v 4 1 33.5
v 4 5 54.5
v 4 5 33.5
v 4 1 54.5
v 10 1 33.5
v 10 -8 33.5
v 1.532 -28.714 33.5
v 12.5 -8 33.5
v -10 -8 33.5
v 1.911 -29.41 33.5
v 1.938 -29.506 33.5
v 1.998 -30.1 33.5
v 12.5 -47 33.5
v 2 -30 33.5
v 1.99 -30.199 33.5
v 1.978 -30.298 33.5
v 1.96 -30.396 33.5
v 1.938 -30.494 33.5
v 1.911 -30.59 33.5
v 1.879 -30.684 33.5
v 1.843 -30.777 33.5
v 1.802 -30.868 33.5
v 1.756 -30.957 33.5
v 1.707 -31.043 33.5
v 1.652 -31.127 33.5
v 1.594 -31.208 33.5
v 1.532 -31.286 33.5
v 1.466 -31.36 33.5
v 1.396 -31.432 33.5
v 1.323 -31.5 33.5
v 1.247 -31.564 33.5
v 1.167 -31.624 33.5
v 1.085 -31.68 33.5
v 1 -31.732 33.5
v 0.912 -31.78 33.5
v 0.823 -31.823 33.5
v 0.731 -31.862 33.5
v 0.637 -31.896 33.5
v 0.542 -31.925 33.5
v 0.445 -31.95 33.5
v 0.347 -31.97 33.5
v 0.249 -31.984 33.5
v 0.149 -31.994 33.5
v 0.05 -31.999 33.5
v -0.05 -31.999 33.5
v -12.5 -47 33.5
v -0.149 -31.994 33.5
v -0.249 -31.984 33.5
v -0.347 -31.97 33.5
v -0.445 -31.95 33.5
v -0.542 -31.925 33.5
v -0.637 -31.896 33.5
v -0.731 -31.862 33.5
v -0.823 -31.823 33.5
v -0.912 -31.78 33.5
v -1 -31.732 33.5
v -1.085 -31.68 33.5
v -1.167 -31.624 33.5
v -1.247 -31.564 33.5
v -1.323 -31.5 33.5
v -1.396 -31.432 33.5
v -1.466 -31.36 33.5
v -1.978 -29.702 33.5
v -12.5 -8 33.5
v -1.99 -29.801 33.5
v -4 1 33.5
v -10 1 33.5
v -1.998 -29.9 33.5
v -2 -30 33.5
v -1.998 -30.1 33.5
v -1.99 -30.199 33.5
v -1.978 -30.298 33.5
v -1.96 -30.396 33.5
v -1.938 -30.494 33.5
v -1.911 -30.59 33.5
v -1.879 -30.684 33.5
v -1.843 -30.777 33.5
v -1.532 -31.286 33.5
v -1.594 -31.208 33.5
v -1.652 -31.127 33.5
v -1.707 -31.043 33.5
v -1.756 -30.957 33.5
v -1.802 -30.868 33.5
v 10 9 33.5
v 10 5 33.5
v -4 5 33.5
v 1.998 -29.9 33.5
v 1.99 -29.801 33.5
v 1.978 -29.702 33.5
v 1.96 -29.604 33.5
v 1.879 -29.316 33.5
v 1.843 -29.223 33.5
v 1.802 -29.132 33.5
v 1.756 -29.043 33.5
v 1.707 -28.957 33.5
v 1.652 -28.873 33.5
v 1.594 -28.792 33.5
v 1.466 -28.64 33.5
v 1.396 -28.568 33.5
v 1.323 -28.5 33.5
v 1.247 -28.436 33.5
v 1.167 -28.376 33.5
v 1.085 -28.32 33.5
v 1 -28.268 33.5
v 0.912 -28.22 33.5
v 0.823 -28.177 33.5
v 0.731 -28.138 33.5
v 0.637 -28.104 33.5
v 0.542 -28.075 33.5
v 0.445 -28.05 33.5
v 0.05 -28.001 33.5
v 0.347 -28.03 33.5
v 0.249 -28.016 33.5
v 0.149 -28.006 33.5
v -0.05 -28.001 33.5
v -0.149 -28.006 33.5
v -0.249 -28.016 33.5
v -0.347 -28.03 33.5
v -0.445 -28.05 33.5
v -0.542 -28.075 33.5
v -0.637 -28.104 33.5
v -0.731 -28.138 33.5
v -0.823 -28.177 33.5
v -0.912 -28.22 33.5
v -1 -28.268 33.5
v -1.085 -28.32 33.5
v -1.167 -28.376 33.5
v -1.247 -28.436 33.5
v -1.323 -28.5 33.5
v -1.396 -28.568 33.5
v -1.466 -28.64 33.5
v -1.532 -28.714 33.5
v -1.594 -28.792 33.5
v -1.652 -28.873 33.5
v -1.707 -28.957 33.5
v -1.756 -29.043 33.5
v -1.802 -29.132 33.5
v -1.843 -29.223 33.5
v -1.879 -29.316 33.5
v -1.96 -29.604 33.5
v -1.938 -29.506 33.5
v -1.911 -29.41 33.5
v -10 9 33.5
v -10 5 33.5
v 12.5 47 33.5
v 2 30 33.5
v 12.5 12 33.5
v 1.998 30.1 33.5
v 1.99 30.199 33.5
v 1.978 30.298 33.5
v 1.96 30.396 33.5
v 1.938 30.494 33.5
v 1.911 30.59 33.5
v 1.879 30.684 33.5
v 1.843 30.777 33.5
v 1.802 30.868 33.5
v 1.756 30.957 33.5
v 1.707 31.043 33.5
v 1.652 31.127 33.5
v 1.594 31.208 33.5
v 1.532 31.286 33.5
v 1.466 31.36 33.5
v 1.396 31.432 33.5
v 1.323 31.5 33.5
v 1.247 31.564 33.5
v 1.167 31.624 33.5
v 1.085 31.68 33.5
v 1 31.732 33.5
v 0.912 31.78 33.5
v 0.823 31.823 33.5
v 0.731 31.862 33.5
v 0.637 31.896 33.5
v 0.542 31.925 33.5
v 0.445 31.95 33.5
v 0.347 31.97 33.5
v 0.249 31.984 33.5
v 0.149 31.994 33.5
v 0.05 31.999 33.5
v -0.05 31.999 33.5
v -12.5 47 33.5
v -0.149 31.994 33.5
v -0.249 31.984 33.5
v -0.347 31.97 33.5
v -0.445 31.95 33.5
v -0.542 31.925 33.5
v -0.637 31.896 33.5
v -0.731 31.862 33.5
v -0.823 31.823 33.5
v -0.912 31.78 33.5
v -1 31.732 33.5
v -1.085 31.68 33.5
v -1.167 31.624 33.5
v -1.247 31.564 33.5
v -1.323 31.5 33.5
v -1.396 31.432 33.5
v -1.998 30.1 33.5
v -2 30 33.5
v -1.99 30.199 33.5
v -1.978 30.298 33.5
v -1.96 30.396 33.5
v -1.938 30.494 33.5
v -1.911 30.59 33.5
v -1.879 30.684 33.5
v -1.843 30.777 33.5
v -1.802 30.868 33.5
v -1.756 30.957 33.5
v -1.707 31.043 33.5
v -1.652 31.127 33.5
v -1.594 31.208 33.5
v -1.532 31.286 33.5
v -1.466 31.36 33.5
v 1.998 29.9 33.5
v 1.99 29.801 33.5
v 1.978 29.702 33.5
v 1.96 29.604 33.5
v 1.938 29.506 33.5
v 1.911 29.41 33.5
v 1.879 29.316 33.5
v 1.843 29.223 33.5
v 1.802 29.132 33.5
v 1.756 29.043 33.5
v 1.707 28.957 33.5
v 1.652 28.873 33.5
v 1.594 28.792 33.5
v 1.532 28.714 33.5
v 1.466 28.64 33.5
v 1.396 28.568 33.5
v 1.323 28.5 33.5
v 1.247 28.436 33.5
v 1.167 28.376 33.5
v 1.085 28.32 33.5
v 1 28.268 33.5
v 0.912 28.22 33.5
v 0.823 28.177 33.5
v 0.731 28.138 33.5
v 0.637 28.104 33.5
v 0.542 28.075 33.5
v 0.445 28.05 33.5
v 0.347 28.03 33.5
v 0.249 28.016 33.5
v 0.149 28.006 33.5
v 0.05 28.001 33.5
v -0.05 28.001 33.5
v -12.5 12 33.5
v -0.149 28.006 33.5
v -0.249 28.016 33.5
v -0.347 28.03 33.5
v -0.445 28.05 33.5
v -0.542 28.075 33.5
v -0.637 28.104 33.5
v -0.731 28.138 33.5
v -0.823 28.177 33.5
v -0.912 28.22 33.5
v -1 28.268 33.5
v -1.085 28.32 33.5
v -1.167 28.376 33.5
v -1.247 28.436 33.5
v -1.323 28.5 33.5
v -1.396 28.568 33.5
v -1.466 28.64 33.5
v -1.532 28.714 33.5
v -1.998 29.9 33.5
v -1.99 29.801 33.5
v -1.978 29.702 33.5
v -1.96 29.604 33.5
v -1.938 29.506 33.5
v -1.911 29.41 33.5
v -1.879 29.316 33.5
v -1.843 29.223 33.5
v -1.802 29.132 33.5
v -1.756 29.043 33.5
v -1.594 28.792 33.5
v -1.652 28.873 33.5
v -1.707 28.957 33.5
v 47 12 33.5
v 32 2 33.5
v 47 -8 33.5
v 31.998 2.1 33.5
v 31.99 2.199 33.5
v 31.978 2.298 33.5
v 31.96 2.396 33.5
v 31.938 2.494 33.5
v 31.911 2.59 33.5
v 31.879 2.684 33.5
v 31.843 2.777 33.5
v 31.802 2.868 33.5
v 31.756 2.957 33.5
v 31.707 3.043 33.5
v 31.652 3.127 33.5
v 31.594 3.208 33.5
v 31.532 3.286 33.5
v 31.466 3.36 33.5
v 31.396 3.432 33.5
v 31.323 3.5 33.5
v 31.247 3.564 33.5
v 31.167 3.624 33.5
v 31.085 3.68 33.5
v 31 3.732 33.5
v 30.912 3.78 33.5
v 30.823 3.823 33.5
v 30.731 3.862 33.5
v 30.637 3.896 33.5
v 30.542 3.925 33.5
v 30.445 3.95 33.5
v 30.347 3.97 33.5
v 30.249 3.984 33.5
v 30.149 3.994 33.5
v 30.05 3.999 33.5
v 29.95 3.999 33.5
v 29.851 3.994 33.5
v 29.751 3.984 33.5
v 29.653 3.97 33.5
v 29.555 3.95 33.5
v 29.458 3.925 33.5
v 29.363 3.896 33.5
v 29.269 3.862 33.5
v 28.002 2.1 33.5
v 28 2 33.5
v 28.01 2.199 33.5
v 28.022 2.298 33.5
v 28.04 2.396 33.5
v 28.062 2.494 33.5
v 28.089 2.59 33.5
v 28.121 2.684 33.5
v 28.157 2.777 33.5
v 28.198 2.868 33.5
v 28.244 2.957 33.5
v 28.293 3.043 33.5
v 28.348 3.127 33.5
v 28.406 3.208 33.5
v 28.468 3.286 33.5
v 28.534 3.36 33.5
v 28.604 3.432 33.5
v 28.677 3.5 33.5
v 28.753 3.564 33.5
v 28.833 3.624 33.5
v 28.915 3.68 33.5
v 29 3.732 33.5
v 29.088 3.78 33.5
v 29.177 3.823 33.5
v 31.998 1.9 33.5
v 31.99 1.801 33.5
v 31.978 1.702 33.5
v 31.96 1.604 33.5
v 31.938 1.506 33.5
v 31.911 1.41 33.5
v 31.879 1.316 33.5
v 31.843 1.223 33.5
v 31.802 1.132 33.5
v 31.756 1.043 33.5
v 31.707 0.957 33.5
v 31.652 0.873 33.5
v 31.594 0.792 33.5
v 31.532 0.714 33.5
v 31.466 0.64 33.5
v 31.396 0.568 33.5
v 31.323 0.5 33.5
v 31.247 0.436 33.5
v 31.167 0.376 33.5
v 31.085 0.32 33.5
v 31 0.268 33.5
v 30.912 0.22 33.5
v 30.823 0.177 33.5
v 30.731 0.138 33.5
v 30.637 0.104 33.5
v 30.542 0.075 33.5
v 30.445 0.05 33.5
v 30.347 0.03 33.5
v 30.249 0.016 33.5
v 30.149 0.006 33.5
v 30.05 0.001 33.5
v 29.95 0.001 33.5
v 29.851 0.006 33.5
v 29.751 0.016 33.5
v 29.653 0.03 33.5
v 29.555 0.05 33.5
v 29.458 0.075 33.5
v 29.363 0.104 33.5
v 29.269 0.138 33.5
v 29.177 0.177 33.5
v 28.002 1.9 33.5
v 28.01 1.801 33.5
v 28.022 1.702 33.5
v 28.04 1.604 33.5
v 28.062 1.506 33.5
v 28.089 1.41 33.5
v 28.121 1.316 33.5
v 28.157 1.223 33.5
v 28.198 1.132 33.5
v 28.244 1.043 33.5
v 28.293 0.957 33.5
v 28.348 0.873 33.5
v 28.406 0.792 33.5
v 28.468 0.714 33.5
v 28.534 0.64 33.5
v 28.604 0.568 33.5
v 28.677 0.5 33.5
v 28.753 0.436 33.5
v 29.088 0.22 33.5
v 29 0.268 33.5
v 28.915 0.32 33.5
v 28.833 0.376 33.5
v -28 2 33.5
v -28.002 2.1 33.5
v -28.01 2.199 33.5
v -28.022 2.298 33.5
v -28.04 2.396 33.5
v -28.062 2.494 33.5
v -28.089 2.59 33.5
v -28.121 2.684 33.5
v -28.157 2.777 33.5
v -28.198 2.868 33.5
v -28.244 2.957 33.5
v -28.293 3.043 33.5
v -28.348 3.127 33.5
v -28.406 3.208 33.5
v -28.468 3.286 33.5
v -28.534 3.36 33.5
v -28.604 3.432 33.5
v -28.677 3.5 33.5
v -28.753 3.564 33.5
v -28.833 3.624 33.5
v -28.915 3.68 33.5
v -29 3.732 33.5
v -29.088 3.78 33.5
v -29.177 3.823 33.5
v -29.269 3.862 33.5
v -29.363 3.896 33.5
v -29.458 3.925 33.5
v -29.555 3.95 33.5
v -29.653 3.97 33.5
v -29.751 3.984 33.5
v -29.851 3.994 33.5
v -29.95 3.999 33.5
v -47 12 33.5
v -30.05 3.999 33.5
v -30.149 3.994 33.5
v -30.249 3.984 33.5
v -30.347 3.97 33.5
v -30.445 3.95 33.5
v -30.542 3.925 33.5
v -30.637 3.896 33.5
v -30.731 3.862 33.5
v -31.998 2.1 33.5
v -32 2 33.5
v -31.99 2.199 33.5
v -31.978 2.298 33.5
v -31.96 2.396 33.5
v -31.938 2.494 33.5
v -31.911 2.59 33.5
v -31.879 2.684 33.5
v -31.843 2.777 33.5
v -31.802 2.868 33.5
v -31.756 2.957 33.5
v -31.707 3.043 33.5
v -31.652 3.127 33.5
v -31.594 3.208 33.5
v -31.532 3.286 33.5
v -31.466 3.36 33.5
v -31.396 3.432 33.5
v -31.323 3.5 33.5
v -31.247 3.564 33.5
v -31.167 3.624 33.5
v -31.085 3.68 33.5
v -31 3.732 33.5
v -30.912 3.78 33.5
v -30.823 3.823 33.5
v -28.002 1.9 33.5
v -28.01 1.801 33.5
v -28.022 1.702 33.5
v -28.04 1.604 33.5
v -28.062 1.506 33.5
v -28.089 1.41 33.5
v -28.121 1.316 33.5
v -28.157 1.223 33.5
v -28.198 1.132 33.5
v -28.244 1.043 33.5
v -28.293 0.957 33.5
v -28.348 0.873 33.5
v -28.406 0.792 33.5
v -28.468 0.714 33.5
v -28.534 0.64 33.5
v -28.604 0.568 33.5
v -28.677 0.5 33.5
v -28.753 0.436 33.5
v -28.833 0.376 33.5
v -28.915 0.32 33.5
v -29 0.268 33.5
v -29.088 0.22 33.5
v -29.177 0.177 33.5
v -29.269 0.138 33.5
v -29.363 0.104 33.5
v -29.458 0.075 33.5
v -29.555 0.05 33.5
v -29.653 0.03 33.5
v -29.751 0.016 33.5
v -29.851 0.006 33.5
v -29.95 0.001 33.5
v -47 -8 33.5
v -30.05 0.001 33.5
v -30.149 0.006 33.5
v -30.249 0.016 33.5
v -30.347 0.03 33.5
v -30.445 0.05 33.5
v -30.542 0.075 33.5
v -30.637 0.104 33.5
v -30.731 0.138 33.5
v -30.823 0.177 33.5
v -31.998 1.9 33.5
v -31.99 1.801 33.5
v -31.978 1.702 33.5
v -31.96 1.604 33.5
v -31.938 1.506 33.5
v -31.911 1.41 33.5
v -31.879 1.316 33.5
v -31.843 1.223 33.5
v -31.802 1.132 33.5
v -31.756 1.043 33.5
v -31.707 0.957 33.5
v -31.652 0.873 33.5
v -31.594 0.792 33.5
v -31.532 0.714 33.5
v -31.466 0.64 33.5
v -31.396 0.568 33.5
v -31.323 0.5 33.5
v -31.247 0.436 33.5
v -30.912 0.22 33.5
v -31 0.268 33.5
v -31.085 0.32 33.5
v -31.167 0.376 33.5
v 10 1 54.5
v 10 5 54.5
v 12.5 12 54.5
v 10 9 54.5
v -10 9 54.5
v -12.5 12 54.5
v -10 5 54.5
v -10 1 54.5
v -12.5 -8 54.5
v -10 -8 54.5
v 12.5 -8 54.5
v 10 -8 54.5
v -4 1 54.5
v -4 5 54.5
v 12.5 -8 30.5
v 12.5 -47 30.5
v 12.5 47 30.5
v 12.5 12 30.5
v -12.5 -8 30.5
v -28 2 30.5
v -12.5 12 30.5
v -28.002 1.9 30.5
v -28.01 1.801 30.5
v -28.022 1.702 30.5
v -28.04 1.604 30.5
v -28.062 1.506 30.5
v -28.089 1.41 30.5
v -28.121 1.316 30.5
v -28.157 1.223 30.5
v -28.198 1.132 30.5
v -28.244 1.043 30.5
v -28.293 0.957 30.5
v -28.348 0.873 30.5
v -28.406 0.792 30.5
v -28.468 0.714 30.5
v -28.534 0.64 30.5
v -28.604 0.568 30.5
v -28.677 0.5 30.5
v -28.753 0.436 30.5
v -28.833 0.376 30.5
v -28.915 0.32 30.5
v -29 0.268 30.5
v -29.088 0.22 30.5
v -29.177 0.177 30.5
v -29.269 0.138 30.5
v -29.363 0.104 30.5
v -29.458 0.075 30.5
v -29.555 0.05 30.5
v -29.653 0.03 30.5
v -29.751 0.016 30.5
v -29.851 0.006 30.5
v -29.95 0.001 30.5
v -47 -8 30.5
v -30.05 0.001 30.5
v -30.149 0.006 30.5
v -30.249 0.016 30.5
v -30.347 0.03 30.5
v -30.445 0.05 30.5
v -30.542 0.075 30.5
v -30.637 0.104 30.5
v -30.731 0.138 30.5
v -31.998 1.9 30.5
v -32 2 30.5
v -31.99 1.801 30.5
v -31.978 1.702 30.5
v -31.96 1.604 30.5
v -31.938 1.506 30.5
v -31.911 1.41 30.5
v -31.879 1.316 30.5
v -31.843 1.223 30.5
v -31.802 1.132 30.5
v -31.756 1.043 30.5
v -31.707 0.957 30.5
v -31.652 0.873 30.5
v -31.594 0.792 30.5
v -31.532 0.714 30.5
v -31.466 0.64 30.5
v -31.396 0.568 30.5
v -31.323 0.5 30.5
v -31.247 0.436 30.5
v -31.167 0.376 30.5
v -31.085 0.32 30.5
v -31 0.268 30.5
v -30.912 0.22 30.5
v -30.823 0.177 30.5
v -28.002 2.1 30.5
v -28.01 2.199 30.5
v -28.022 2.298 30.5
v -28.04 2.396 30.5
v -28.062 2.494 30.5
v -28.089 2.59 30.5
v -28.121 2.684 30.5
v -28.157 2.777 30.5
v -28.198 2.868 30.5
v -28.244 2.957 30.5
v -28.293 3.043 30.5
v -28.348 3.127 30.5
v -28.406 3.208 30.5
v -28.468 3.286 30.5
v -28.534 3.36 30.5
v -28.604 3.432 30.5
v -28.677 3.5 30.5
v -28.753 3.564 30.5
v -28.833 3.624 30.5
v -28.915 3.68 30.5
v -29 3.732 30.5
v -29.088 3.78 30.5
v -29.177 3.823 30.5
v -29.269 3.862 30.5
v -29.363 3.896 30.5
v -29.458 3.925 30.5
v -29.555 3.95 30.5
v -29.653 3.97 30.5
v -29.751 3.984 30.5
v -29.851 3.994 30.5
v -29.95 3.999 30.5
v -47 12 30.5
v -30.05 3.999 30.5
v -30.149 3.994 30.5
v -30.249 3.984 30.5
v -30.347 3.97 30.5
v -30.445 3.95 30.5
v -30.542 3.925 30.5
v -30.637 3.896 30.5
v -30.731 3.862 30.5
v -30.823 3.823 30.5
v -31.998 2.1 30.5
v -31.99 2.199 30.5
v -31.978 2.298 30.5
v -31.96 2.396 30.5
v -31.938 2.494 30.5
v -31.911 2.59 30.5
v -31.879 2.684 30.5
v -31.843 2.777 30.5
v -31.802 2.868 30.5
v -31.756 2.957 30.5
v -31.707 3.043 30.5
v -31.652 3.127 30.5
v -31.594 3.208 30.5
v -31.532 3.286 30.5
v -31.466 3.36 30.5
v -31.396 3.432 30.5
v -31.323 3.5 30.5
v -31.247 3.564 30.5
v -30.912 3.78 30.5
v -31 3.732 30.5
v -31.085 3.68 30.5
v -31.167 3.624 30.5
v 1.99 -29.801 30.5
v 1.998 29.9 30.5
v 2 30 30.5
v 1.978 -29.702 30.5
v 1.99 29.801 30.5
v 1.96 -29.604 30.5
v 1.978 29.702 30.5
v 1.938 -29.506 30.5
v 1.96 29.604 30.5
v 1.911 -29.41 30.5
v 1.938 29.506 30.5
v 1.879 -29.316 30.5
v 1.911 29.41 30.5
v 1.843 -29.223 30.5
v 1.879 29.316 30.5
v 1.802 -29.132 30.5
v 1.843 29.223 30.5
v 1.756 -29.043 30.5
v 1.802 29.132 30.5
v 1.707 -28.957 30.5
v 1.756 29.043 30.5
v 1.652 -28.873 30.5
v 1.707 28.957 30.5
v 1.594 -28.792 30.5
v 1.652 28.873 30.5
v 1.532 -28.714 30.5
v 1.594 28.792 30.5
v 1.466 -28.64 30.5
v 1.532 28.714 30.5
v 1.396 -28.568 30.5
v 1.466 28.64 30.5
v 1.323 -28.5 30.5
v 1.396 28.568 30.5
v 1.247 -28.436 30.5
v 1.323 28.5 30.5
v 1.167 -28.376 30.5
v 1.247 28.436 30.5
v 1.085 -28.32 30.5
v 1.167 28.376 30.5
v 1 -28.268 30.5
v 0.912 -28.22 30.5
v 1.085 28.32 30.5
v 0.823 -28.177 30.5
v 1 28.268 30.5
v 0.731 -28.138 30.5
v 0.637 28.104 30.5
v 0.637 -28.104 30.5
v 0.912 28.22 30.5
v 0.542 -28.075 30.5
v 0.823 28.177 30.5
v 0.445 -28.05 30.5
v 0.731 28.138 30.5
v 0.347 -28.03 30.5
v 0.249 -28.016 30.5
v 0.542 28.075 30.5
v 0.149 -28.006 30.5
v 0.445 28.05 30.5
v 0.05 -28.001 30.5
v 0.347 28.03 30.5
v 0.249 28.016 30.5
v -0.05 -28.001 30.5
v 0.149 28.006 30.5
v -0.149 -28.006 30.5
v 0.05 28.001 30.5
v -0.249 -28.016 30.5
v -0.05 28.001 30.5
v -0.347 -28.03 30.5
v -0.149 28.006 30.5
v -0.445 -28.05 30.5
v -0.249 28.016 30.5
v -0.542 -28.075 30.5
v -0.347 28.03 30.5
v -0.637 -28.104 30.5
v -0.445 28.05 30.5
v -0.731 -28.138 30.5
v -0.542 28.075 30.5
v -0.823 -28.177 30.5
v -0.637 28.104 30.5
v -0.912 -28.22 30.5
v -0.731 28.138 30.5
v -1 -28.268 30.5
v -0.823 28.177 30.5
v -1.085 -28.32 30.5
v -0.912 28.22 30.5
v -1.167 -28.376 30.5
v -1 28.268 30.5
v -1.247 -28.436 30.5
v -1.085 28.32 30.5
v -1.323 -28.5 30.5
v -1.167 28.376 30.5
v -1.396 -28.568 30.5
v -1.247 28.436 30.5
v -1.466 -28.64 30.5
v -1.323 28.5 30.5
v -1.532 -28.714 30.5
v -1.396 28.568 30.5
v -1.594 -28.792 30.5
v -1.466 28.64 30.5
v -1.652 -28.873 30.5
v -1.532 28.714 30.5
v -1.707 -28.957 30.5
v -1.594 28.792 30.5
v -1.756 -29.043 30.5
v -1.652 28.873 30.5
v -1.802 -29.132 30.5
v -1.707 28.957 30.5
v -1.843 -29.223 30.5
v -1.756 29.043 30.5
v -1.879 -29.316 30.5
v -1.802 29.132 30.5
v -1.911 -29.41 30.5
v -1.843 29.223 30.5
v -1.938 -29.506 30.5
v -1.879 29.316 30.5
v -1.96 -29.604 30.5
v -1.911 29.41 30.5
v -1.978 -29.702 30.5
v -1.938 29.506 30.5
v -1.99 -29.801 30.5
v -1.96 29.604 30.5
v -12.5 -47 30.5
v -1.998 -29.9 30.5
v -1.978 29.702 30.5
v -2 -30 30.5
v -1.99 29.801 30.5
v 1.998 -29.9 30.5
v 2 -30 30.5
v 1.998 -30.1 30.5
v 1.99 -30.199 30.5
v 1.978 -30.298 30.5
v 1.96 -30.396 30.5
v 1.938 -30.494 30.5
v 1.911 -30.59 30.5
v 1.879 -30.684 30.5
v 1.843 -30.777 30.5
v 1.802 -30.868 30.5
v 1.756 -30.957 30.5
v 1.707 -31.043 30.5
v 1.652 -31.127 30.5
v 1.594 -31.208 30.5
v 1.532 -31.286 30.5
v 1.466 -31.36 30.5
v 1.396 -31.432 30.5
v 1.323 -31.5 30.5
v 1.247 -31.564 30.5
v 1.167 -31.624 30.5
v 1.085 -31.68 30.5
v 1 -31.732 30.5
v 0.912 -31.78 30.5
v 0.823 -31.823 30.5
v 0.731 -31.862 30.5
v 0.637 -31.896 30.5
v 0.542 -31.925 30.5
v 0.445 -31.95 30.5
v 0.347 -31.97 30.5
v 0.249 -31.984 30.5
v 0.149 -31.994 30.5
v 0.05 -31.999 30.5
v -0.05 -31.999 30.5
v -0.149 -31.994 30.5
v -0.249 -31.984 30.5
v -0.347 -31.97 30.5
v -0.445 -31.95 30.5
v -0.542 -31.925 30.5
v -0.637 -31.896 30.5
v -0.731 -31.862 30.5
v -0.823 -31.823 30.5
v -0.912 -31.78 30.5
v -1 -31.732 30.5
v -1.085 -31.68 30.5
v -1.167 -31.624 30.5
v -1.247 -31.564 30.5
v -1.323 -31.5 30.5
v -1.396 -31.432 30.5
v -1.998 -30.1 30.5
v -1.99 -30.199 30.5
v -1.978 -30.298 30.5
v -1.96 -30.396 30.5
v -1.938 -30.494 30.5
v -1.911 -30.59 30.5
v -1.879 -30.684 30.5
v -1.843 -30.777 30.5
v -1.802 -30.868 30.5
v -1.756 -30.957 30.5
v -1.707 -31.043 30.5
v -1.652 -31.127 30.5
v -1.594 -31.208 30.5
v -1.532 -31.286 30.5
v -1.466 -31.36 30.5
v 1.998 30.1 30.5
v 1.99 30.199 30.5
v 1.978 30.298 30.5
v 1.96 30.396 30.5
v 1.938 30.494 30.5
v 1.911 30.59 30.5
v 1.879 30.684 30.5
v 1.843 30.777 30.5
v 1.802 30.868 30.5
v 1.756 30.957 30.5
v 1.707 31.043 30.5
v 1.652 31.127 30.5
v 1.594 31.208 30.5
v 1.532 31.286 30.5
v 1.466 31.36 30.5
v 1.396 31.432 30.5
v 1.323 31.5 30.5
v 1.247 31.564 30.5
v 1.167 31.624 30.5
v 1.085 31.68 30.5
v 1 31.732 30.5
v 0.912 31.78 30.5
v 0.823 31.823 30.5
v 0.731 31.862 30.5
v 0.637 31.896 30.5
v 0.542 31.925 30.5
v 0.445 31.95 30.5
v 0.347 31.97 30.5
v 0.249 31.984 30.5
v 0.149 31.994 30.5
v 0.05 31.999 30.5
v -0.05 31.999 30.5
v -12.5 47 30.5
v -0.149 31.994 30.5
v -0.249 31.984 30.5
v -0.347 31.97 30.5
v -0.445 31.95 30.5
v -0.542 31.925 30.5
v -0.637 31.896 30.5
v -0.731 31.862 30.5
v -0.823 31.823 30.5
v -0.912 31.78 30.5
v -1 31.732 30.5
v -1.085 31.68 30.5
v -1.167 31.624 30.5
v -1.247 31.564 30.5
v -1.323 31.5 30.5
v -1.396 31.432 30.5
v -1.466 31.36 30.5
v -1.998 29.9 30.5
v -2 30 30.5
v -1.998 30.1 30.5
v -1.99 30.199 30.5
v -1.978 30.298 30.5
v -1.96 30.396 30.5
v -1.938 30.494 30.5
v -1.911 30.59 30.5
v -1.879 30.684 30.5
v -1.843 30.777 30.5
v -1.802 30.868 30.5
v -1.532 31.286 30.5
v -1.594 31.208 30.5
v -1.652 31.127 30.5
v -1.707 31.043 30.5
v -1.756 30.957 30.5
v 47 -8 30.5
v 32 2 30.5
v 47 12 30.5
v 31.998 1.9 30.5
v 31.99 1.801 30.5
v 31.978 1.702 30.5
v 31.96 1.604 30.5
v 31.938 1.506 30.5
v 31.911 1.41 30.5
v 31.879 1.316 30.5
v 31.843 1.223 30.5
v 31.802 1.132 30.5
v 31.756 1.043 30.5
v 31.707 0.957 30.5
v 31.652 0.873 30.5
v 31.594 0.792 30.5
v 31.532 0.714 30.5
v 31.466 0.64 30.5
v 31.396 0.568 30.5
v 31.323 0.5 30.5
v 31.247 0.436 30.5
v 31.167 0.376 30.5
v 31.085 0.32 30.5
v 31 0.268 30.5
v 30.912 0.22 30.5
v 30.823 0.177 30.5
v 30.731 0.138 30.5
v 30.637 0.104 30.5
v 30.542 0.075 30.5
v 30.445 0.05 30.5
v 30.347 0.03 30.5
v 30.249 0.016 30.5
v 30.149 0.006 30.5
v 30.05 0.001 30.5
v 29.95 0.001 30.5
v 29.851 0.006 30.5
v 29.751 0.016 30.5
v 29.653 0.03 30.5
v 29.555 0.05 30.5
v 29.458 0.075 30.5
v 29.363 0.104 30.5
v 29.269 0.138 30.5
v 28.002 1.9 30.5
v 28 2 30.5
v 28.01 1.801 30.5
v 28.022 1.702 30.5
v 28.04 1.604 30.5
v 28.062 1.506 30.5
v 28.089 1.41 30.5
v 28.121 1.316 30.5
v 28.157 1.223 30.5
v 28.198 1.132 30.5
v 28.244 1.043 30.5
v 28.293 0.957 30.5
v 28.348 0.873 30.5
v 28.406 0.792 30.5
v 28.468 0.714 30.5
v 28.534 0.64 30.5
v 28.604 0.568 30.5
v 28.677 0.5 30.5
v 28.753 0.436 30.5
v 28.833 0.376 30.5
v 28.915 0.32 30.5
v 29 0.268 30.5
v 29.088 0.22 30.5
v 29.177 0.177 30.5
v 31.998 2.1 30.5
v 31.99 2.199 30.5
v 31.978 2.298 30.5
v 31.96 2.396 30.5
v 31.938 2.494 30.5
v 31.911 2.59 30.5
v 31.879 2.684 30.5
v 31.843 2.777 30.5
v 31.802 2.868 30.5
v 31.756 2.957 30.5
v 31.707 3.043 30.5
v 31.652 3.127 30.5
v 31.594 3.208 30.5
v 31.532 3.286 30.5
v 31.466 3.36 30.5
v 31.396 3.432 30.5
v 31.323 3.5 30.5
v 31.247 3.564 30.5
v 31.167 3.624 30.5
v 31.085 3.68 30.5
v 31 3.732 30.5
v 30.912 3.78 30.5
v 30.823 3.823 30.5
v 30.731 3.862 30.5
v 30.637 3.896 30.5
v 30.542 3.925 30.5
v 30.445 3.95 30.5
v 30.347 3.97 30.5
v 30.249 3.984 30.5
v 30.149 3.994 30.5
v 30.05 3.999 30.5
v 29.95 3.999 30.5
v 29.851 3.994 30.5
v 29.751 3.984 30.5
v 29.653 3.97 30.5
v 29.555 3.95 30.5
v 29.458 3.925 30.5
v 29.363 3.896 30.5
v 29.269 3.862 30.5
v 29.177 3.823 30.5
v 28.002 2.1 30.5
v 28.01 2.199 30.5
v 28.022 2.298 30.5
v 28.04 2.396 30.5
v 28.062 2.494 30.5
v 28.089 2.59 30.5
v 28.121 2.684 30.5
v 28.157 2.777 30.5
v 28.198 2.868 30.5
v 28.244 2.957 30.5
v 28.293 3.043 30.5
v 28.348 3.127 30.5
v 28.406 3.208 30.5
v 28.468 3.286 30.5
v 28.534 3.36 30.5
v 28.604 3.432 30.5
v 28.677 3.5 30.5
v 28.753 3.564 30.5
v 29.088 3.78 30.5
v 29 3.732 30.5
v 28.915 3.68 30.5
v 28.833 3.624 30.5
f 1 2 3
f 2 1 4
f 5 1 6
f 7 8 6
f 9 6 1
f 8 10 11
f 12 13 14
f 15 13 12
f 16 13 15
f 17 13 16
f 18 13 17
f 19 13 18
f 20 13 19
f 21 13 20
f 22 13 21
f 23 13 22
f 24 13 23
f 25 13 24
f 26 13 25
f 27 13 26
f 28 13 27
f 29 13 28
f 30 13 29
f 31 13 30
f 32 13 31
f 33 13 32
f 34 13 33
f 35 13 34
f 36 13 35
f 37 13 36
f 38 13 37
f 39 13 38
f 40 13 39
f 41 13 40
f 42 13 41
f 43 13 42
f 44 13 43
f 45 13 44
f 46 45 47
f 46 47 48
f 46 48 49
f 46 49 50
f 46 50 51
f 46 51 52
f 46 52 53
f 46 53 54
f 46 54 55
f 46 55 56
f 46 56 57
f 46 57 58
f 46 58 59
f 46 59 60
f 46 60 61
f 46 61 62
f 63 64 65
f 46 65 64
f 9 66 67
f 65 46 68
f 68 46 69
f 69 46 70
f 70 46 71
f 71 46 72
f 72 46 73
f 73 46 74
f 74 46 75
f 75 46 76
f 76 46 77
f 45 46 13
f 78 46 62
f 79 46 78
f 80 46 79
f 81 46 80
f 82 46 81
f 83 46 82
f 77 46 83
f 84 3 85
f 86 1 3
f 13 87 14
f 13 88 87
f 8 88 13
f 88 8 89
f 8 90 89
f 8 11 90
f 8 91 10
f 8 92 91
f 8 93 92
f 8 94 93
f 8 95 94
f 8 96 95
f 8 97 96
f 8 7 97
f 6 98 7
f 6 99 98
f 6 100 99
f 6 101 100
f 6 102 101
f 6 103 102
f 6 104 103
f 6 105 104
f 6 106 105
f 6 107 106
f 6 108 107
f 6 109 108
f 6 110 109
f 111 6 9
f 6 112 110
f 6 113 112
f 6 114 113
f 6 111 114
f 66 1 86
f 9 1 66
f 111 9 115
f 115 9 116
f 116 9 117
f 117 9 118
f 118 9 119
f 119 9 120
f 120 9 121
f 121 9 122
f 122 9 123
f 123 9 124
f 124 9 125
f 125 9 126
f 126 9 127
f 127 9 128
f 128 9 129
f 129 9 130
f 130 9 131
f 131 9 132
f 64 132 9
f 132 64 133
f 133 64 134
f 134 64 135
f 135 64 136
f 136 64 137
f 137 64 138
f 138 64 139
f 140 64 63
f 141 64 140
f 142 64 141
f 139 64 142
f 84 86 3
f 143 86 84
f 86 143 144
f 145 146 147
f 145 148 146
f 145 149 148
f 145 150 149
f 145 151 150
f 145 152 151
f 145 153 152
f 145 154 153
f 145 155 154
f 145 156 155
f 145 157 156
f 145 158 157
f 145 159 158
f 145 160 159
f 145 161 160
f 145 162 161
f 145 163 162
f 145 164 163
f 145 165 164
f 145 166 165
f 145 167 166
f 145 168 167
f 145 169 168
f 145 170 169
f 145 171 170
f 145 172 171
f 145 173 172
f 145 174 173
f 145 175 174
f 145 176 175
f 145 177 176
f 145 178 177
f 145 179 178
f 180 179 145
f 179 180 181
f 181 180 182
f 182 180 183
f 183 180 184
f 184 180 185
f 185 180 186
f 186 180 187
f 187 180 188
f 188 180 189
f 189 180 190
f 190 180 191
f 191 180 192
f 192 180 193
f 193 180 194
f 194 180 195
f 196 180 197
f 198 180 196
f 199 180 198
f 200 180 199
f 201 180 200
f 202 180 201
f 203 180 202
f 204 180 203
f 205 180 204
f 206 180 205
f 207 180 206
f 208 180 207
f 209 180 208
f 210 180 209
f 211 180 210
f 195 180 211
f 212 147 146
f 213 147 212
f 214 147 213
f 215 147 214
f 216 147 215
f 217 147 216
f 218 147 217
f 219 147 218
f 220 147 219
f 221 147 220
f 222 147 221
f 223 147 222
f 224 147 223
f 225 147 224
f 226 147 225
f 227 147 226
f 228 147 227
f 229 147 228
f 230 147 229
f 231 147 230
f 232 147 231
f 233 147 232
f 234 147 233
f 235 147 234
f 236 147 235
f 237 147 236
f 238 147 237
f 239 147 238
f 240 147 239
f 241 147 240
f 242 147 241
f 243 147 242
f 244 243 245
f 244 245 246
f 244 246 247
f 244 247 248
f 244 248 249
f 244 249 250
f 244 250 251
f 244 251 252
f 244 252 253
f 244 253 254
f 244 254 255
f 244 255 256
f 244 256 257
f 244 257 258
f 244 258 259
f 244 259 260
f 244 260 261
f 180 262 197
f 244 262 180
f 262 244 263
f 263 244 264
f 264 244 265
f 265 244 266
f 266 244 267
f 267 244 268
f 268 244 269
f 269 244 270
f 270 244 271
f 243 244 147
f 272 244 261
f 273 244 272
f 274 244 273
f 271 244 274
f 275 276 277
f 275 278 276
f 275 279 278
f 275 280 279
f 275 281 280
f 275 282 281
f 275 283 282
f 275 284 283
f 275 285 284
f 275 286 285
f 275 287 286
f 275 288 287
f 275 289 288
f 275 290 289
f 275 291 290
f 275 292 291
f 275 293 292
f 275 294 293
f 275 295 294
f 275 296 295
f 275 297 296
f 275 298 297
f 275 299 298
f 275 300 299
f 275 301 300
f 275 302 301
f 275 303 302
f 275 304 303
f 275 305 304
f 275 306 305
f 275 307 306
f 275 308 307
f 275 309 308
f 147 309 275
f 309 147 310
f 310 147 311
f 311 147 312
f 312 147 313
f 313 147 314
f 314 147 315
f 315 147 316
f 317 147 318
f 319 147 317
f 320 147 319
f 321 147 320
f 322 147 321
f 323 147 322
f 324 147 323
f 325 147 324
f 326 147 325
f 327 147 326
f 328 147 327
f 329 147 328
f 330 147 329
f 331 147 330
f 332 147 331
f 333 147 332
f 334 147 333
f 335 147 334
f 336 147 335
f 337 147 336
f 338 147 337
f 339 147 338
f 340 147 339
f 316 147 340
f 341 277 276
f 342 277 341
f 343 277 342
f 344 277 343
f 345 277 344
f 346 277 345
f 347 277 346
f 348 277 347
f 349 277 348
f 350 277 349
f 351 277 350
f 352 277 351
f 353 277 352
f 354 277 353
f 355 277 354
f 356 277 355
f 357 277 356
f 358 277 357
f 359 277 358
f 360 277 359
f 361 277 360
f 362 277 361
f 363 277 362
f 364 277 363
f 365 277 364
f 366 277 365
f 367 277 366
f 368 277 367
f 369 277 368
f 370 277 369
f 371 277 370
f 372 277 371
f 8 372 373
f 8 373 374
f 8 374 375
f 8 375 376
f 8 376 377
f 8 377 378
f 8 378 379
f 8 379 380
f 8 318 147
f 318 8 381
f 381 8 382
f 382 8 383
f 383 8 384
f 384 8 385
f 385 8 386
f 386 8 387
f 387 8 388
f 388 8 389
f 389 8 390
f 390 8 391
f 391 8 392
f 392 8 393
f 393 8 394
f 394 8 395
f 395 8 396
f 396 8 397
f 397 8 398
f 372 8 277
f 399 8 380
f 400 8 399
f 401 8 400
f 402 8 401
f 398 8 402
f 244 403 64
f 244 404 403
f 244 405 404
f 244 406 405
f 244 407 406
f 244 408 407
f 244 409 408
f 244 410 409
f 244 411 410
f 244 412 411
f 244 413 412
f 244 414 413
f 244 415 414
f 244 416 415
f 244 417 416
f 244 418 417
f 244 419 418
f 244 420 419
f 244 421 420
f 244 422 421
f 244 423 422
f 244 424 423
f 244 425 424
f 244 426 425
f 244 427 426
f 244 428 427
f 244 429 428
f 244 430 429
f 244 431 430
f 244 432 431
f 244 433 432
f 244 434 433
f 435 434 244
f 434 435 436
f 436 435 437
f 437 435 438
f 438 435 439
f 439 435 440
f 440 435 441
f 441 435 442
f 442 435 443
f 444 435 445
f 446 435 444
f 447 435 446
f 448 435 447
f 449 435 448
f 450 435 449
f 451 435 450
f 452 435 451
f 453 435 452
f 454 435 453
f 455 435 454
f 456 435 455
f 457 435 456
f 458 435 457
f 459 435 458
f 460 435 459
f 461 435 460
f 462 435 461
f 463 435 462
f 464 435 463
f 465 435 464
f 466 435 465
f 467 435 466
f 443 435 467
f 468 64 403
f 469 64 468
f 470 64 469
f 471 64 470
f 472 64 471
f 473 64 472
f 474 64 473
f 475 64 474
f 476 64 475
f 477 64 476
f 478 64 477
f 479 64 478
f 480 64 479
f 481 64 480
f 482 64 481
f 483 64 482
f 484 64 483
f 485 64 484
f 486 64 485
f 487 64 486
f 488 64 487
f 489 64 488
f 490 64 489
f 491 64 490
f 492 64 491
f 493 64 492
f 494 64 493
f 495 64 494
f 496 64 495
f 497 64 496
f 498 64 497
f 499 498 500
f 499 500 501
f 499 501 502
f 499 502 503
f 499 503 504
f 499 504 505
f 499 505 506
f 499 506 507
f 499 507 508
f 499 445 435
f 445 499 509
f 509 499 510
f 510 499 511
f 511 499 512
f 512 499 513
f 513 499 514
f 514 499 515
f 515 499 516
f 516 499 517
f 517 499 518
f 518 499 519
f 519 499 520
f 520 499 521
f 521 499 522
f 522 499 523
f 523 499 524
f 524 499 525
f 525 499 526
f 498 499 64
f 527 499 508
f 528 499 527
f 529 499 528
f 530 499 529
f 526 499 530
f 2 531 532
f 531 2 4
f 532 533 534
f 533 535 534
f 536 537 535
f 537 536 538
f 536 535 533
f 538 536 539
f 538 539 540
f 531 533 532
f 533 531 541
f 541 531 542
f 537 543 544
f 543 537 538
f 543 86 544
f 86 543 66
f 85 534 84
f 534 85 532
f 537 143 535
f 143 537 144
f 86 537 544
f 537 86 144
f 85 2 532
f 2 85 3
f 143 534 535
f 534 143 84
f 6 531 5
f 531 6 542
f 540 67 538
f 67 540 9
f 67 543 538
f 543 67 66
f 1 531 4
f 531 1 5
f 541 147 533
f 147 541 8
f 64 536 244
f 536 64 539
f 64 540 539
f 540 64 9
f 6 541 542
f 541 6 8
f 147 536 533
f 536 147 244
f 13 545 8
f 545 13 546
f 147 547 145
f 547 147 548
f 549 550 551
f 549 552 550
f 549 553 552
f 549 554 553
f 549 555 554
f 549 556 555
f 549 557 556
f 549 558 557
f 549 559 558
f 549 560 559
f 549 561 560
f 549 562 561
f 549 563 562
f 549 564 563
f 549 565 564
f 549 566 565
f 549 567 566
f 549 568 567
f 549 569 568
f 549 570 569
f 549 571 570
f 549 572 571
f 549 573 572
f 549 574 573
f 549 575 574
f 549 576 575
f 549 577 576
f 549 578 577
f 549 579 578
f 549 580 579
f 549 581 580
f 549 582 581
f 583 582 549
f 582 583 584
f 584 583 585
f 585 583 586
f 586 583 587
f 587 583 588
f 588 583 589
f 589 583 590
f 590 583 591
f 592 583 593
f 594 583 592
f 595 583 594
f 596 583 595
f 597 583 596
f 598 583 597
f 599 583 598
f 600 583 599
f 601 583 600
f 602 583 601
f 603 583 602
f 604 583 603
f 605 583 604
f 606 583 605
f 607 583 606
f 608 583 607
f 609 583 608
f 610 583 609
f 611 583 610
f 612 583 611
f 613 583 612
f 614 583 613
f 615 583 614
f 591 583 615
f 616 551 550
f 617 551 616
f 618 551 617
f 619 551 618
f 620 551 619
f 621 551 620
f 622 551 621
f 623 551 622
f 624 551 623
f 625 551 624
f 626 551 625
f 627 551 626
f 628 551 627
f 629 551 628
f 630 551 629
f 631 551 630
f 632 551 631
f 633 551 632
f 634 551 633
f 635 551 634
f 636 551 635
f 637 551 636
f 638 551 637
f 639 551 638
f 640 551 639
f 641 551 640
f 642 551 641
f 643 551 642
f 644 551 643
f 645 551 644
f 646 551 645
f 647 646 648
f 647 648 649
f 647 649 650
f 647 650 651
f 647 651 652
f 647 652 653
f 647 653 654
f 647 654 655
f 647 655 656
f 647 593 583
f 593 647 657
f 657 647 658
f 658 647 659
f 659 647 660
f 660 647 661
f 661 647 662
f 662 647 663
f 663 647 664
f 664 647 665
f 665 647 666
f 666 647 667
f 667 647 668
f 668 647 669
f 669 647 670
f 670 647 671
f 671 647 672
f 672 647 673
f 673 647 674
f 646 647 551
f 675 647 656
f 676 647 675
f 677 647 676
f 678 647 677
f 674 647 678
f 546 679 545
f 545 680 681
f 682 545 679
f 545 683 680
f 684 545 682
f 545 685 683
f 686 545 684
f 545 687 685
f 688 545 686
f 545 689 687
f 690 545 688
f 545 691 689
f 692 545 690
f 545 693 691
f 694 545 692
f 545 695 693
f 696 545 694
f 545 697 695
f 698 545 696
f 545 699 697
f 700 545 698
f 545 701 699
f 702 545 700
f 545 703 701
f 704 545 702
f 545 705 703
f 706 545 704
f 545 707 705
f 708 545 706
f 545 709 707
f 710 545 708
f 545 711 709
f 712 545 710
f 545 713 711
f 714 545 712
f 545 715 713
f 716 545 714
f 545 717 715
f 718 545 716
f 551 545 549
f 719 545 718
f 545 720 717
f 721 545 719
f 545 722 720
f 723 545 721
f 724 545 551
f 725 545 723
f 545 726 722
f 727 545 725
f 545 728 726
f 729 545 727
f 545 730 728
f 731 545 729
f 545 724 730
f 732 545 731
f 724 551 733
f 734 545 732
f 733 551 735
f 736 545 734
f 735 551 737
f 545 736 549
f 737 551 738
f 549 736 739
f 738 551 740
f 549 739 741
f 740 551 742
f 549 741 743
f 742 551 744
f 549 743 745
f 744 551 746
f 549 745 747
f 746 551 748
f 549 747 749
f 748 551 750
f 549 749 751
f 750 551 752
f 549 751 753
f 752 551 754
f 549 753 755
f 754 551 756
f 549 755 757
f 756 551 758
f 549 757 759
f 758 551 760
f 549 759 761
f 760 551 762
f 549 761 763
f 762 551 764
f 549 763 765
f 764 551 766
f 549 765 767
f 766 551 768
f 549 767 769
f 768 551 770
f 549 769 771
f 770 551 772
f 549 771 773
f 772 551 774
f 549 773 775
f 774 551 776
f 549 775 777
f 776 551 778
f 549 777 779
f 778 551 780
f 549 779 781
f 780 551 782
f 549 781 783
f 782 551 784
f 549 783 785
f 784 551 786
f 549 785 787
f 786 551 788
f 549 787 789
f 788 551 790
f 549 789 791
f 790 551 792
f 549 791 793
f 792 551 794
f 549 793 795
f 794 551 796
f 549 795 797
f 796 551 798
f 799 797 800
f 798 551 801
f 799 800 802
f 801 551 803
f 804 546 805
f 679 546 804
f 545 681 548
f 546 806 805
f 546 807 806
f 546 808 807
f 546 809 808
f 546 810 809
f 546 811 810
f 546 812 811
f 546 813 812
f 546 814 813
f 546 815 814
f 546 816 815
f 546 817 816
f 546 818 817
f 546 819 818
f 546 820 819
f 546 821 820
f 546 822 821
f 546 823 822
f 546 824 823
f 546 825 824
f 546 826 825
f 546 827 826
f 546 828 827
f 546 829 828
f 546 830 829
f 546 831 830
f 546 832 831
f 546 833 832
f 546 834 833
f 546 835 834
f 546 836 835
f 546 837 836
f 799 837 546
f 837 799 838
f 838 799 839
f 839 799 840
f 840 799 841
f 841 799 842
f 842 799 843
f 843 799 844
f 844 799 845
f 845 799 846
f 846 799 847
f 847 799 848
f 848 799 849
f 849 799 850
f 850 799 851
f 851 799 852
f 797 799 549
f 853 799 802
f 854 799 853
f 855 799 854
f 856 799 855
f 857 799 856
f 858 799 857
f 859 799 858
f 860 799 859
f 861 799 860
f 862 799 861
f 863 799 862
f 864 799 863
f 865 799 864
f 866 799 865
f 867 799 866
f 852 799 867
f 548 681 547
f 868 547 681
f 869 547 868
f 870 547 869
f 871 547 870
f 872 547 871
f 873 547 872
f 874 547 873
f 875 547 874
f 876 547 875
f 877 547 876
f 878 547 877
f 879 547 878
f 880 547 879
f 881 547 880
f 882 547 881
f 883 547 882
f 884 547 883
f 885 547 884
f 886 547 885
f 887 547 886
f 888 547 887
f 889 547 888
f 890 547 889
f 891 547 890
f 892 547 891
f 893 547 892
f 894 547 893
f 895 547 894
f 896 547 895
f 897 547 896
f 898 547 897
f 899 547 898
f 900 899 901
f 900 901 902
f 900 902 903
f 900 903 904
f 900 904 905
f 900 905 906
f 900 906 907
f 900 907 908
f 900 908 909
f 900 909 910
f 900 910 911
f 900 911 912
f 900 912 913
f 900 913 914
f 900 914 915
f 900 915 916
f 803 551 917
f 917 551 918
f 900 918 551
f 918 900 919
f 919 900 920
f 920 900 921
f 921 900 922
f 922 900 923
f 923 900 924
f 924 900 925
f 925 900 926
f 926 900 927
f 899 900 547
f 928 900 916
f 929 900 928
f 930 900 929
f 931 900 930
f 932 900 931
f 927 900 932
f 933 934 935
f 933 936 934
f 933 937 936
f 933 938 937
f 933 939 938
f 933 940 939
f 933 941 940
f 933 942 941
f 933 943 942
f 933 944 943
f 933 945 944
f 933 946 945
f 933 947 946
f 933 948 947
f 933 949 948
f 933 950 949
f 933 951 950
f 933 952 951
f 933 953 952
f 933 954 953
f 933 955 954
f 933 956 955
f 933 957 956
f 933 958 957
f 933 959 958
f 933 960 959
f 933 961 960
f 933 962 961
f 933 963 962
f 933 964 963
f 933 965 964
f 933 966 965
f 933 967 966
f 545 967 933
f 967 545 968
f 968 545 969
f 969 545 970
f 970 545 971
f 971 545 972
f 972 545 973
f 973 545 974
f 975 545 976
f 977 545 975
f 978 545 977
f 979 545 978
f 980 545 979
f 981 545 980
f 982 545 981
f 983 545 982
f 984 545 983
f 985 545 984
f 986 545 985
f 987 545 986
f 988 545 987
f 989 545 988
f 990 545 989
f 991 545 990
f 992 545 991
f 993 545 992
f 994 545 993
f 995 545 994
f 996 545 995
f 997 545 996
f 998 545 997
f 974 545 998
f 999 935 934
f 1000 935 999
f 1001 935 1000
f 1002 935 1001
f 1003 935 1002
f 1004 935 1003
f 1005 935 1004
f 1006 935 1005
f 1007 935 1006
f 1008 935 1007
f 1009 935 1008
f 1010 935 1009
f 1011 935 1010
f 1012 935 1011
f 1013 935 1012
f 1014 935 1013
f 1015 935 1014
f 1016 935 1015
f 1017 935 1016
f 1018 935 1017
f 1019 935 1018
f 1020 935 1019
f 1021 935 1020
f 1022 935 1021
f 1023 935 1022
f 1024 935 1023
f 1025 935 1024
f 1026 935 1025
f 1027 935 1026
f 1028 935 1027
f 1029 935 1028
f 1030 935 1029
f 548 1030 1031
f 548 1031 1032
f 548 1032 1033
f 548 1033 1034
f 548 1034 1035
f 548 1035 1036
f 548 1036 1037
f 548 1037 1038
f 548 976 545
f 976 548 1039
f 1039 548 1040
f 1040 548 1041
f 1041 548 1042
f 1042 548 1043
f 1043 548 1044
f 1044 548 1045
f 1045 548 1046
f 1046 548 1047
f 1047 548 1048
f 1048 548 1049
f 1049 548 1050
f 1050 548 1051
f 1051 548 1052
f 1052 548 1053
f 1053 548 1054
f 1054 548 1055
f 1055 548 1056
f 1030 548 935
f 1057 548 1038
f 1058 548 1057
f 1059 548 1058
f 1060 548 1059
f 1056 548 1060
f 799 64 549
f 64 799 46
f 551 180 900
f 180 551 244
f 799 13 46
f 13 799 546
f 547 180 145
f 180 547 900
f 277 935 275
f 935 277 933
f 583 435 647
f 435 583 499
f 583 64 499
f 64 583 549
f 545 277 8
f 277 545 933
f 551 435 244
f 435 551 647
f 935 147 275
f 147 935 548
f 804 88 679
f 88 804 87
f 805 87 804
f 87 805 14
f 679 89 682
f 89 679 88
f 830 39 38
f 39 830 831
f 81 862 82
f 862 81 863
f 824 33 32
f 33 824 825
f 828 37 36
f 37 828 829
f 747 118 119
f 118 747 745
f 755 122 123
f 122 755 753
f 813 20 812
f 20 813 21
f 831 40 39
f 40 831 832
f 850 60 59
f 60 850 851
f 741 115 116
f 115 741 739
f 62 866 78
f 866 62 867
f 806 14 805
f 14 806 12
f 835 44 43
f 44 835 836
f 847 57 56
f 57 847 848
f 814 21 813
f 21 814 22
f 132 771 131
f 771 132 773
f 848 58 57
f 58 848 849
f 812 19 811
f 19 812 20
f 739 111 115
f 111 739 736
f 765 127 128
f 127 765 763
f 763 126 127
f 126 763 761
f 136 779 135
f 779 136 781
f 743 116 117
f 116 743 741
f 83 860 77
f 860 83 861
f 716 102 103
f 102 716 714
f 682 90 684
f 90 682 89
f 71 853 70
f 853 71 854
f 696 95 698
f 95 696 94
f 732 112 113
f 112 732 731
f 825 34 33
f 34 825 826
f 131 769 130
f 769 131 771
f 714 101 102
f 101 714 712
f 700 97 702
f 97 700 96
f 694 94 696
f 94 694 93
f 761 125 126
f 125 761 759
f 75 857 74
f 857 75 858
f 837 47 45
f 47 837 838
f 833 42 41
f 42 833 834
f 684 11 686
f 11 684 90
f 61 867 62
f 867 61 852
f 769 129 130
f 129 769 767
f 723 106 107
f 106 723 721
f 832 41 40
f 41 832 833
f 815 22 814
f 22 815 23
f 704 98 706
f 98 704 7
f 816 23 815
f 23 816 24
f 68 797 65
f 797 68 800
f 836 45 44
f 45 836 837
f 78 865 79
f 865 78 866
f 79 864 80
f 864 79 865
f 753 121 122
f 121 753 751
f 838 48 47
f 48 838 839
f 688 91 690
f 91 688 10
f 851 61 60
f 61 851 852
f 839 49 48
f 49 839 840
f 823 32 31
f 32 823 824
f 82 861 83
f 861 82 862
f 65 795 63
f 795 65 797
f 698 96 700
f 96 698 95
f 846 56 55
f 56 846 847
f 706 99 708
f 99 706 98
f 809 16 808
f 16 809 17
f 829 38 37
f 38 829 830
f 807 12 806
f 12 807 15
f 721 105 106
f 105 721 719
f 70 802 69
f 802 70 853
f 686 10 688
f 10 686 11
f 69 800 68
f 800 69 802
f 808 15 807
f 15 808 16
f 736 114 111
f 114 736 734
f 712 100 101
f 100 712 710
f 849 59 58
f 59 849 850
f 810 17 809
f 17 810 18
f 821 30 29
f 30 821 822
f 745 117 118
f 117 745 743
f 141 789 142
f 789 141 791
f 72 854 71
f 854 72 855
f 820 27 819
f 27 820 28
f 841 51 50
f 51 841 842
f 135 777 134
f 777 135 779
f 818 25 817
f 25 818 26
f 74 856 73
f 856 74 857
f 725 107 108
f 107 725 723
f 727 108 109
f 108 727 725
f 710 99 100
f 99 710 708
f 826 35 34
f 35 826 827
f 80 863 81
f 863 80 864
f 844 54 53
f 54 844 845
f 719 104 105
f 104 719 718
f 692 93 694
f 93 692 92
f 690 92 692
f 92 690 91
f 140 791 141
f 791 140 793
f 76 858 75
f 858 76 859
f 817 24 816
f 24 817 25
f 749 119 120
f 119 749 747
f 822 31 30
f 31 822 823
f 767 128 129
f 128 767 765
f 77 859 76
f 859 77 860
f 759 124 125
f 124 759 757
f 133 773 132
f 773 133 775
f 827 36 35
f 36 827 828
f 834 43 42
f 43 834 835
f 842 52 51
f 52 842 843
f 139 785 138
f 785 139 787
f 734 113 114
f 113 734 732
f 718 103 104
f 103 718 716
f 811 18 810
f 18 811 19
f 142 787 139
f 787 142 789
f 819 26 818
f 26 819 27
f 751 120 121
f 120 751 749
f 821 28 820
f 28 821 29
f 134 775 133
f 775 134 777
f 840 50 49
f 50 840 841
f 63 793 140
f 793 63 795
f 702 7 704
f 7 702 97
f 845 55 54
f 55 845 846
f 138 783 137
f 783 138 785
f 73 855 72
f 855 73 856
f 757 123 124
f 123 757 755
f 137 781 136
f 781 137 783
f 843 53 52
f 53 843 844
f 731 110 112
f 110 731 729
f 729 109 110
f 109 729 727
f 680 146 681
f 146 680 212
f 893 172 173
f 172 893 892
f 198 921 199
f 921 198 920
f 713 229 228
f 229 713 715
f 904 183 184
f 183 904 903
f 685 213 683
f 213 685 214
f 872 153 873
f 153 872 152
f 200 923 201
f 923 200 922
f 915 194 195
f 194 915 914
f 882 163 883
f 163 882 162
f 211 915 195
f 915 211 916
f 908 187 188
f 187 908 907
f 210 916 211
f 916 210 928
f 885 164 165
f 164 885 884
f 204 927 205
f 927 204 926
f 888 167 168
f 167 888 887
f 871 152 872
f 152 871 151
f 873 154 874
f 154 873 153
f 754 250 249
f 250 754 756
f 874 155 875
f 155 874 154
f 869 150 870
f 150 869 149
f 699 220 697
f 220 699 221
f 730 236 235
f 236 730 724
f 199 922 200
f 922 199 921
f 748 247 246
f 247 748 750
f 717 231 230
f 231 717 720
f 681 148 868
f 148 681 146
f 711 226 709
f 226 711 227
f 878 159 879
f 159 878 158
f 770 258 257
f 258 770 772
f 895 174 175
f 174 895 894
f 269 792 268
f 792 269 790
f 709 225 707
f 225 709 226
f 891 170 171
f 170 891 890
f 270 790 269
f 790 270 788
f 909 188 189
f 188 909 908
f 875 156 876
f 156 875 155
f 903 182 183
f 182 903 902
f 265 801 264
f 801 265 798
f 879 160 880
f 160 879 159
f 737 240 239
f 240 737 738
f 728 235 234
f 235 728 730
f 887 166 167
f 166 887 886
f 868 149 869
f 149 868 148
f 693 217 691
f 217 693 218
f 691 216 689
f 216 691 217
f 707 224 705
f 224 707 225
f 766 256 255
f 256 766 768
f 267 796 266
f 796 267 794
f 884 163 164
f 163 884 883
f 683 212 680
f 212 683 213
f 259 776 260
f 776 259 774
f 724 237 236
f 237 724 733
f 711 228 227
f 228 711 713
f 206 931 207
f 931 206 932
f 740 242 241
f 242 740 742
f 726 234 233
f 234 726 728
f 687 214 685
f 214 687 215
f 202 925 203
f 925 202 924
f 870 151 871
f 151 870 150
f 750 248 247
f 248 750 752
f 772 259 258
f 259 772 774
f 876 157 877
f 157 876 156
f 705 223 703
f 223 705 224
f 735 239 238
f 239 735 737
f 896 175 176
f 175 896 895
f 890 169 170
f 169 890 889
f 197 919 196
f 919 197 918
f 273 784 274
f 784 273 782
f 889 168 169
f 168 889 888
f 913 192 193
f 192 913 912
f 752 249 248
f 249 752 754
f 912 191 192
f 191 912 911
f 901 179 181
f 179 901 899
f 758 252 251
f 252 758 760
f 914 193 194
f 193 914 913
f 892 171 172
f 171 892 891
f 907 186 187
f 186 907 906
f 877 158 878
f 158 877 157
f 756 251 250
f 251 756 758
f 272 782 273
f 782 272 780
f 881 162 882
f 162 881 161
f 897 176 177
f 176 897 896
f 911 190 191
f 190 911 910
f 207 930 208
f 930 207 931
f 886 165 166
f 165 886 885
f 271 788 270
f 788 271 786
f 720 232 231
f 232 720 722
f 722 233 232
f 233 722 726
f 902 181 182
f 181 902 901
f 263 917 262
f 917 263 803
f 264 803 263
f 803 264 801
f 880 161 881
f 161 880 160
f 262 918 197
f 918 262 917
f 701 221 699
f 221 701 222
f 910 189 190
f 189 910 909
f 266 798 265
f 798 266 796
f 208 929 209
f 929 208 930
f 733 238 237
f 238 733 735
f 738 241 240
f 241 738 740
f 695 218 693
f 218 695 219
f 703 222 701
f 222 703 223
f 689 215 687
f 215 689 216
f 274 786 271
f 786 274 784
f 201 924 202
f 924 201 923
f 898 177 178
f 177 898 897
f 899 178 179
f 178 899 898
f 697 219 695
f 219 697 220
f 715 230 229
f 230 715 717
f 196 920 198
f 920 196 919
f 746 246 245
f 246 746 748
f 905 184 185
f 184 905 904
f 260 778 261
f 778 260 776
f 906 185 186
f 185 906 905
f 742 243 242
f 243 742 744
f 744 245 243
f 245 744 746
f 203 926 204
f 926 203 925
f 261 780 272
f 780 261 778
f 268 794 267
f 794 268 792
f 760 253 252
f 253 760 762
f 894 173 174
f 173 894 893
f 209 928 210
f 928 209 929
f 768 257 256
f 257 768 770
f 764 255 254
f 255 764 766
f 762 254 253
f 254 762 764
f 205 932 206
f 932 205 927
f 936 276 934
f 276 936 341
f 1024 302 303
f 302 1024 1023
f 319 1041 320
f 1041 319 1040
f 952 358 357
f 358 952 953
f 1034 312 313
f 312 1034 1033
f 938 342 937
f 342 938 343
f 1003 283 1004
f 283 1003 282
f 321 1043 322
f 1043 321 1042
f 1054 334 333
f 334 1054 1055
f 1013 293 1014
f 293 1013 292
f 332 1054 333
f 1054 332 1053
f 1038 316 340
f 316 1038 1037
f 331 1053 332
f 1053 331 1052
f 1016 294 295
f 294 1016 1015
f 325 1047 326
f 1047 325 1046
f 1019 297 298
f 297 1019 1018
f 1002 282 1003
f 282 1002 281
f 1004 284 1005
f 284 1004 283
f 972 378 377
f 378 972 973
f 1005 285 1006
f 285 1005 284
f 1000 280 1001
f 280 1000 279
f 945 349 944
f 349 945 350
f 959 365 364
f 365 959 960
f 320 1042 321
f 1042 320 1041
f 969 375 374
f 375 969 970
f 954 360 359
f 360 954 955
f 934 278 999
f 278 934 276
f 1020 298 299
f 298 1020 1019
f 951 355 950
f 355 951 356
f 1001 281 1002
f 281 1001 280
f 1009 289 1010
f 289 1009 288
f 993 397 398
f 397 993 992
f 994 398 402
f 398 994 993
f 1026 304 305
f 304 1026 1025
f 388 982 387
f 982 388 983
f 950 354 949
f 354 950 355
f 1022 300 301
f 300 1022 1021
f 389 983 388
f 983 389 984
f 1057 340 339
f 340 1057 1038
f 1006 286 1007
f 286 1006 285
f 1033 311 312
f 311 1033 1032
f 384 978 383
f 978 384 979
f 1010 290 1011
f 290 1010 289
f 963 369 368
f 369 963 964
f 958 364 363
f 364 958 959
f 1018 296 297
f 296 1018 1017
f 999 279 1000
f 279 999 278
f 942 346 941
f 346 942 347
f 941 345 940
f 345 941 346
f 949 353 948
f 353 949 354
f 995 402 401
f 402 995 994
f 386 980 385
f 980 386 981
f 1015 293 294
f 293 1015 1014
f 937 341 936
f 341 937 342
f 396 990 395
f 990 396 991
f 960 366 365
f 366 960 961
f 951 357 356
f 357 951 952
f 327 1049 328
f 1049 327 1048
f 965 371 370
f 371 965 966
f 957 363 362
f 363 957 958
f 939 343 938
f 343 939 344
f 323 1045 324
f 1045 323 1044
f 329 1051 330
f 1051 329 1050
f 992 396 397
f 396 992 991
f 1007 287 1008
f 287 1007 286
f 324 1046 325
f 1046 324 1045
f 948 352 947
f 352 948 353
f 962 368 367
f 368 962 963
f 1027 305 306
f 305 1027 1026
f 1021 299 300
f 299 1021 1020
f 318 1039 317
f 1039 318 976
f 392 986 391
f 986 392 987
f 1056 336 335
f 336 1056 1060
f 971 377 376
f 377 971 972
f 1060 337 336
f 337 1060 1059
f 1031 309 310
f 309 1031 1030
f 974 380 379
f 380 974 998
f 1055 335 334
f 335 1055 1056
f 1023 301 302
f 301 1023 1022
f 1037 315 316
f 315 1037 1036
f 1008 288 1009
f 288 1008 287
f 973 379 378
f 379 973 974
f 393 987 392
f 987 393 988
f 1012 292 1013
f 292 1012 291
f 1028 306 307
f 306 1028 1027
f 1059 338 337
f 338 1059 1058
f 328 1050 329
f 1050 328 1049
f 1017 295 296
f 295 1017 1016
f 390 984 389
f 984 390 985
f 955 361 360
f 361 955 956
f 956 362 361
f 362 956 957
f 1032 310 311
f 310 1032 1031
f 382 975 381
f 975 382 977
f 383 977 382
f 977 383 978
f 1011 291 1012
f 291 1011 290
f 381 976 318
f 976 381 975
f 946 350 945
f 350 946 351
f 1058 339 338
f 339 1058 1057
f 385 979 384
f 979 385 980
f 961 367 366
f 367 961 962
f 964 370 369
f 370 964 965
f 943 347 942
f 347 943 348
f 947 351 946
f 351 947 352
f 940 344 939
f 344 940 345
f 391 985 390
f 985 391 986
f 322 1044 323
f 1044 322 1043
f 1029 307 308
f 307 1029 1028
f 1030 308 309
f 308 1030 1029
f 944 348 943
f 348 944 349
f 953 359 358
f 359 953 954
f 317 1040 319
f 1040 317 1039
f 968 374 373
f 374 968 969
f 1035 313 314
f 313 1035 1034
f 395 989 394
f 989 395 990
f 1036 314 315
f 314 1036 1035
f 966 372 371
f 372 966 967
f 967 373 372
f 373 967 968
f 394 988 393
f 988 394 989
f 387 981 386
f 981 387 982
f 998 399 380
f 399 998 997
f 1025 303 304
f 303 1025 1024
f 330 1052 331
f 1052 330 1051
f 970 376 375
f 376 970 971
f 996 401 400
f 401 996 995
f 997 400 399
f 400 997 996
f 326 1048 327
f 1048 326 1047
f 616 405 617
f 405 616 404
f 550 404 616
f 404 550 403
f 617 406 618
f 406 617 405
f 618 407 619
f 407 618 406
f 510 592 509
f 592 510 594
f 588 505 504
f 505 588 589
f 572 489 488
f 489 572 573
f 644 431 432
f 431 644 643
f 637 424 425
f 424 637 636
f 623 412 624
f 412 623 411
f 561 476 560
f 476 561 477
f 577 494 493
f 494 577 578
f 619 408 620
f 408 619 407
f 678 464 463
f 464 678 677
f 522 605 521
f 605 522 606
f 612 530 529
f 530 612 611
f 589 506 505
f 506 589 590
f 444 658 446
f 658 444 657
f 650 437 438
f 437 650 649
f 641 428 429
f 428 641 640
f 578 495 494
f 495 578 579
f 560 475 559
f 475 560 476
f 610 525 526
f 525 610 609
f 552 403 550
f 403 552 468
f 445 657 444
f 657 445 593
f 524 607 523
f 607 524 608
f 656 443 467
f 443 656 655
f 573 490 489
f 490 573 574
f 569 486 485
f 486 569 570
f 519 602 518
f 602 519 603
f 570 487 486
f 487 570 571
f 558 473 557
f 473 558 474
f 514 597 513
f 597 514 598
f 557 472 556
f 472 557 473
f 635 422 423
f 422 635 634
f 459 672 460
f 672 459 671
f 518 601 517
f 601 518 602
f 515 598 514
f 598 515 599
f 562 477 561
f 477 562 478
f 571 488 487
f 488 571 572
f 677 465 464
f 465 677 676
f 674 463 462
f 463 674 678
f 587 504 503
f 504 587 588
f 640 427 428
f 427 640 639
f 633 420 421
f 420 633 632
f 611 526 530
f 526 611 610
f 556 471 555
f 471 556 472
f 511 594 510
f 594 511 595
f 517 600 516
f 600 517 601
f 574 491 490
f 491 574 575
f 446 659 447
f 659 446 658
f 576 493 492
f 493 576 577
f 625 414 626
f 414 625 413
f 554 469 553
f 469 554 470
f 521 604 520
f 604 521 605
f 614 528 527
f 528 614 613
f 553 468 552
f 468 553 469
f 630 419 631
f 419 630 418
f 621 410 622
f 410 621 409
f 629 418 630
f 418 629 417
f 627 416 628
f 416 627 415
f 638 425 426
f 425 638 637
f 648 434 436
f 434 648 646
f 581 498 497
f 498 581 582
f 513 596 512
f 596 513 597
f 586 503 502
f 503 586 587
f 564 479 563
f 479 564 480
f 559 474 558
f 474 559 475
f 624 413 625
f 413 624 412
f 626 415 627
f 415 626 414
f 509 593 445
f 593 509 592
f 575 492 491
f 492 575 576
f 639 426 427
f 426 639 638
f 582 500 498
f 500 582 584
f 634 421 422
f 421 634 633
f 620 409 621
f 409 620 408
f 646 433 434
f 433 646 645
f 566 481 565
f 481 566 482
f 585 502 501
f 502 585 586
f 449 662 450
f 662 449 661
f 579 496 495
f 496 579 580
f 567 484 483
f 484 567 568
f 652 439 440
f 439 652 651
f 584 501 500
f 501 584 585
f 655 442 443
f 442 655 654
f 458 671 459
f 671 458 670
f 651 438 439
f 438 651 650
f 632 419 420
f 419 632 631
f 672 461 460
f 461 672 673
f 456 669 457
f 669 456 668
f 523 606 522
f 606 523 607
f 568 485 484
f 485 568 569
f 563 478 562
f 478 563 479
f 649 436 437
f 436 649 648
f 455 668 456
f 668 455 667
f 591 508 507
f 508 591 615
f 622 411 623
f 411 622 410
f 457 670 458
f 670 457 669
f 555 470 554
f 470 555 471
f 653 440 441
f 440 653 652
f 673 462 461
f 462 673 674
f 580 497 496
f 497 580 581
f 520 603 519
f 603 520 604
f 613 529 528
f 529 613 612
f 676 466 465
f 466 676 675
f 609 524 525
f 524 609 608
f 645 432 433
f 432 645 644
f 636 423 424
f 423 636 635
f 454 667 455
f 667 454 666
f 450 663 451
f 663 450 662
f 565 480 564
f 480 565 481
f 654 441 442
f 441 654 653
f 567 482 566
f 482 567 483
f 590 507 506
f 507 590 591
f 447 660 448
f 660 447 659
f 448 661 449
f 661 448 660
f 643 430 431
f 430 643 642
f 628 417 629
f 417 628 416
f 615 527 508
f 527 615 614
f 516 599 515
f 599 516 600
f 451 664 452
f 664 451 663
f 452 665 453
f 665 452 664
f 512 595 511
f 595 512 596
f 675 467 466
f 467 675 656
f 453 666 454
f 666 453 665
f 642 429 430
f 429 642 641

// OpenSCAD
$fa = 0.1;
$fs = 0.1;

module bike_display_mount(){

difference(){

union(){
translate([0,38,44]){
rotate([0,180,180]){
translate([0,35,0]){
union(){
difference(){

translate([0,1,1])
cube([25,20,23],center=true);

union(){

        cube([8,6,21],center=true);
    translate([0,-4,0]){
        cube([20,4,21],center=true);
    }

    translate([0,17.5,0]){
        cube([20,31,21],center=true);
    }


}
}
}
}

translate([0,38,12]){
  cube([25,94,3],center=true);
}

translate([0,36,12]){
   cube([94,20,3],center=true);
}

}

}

}


translate([0,-30,25]){
       cylinder(d=4,h=20);
    }

translate([0,30,25]){
       cylinder(d=4,h=20);
    }

translate([30,2,25]){
       cylinder(d=4,h=20);
    }

translate([-30,2,25]){
       cylinder(d=4,h=20);
    }

}
}

bike_display_mount();
